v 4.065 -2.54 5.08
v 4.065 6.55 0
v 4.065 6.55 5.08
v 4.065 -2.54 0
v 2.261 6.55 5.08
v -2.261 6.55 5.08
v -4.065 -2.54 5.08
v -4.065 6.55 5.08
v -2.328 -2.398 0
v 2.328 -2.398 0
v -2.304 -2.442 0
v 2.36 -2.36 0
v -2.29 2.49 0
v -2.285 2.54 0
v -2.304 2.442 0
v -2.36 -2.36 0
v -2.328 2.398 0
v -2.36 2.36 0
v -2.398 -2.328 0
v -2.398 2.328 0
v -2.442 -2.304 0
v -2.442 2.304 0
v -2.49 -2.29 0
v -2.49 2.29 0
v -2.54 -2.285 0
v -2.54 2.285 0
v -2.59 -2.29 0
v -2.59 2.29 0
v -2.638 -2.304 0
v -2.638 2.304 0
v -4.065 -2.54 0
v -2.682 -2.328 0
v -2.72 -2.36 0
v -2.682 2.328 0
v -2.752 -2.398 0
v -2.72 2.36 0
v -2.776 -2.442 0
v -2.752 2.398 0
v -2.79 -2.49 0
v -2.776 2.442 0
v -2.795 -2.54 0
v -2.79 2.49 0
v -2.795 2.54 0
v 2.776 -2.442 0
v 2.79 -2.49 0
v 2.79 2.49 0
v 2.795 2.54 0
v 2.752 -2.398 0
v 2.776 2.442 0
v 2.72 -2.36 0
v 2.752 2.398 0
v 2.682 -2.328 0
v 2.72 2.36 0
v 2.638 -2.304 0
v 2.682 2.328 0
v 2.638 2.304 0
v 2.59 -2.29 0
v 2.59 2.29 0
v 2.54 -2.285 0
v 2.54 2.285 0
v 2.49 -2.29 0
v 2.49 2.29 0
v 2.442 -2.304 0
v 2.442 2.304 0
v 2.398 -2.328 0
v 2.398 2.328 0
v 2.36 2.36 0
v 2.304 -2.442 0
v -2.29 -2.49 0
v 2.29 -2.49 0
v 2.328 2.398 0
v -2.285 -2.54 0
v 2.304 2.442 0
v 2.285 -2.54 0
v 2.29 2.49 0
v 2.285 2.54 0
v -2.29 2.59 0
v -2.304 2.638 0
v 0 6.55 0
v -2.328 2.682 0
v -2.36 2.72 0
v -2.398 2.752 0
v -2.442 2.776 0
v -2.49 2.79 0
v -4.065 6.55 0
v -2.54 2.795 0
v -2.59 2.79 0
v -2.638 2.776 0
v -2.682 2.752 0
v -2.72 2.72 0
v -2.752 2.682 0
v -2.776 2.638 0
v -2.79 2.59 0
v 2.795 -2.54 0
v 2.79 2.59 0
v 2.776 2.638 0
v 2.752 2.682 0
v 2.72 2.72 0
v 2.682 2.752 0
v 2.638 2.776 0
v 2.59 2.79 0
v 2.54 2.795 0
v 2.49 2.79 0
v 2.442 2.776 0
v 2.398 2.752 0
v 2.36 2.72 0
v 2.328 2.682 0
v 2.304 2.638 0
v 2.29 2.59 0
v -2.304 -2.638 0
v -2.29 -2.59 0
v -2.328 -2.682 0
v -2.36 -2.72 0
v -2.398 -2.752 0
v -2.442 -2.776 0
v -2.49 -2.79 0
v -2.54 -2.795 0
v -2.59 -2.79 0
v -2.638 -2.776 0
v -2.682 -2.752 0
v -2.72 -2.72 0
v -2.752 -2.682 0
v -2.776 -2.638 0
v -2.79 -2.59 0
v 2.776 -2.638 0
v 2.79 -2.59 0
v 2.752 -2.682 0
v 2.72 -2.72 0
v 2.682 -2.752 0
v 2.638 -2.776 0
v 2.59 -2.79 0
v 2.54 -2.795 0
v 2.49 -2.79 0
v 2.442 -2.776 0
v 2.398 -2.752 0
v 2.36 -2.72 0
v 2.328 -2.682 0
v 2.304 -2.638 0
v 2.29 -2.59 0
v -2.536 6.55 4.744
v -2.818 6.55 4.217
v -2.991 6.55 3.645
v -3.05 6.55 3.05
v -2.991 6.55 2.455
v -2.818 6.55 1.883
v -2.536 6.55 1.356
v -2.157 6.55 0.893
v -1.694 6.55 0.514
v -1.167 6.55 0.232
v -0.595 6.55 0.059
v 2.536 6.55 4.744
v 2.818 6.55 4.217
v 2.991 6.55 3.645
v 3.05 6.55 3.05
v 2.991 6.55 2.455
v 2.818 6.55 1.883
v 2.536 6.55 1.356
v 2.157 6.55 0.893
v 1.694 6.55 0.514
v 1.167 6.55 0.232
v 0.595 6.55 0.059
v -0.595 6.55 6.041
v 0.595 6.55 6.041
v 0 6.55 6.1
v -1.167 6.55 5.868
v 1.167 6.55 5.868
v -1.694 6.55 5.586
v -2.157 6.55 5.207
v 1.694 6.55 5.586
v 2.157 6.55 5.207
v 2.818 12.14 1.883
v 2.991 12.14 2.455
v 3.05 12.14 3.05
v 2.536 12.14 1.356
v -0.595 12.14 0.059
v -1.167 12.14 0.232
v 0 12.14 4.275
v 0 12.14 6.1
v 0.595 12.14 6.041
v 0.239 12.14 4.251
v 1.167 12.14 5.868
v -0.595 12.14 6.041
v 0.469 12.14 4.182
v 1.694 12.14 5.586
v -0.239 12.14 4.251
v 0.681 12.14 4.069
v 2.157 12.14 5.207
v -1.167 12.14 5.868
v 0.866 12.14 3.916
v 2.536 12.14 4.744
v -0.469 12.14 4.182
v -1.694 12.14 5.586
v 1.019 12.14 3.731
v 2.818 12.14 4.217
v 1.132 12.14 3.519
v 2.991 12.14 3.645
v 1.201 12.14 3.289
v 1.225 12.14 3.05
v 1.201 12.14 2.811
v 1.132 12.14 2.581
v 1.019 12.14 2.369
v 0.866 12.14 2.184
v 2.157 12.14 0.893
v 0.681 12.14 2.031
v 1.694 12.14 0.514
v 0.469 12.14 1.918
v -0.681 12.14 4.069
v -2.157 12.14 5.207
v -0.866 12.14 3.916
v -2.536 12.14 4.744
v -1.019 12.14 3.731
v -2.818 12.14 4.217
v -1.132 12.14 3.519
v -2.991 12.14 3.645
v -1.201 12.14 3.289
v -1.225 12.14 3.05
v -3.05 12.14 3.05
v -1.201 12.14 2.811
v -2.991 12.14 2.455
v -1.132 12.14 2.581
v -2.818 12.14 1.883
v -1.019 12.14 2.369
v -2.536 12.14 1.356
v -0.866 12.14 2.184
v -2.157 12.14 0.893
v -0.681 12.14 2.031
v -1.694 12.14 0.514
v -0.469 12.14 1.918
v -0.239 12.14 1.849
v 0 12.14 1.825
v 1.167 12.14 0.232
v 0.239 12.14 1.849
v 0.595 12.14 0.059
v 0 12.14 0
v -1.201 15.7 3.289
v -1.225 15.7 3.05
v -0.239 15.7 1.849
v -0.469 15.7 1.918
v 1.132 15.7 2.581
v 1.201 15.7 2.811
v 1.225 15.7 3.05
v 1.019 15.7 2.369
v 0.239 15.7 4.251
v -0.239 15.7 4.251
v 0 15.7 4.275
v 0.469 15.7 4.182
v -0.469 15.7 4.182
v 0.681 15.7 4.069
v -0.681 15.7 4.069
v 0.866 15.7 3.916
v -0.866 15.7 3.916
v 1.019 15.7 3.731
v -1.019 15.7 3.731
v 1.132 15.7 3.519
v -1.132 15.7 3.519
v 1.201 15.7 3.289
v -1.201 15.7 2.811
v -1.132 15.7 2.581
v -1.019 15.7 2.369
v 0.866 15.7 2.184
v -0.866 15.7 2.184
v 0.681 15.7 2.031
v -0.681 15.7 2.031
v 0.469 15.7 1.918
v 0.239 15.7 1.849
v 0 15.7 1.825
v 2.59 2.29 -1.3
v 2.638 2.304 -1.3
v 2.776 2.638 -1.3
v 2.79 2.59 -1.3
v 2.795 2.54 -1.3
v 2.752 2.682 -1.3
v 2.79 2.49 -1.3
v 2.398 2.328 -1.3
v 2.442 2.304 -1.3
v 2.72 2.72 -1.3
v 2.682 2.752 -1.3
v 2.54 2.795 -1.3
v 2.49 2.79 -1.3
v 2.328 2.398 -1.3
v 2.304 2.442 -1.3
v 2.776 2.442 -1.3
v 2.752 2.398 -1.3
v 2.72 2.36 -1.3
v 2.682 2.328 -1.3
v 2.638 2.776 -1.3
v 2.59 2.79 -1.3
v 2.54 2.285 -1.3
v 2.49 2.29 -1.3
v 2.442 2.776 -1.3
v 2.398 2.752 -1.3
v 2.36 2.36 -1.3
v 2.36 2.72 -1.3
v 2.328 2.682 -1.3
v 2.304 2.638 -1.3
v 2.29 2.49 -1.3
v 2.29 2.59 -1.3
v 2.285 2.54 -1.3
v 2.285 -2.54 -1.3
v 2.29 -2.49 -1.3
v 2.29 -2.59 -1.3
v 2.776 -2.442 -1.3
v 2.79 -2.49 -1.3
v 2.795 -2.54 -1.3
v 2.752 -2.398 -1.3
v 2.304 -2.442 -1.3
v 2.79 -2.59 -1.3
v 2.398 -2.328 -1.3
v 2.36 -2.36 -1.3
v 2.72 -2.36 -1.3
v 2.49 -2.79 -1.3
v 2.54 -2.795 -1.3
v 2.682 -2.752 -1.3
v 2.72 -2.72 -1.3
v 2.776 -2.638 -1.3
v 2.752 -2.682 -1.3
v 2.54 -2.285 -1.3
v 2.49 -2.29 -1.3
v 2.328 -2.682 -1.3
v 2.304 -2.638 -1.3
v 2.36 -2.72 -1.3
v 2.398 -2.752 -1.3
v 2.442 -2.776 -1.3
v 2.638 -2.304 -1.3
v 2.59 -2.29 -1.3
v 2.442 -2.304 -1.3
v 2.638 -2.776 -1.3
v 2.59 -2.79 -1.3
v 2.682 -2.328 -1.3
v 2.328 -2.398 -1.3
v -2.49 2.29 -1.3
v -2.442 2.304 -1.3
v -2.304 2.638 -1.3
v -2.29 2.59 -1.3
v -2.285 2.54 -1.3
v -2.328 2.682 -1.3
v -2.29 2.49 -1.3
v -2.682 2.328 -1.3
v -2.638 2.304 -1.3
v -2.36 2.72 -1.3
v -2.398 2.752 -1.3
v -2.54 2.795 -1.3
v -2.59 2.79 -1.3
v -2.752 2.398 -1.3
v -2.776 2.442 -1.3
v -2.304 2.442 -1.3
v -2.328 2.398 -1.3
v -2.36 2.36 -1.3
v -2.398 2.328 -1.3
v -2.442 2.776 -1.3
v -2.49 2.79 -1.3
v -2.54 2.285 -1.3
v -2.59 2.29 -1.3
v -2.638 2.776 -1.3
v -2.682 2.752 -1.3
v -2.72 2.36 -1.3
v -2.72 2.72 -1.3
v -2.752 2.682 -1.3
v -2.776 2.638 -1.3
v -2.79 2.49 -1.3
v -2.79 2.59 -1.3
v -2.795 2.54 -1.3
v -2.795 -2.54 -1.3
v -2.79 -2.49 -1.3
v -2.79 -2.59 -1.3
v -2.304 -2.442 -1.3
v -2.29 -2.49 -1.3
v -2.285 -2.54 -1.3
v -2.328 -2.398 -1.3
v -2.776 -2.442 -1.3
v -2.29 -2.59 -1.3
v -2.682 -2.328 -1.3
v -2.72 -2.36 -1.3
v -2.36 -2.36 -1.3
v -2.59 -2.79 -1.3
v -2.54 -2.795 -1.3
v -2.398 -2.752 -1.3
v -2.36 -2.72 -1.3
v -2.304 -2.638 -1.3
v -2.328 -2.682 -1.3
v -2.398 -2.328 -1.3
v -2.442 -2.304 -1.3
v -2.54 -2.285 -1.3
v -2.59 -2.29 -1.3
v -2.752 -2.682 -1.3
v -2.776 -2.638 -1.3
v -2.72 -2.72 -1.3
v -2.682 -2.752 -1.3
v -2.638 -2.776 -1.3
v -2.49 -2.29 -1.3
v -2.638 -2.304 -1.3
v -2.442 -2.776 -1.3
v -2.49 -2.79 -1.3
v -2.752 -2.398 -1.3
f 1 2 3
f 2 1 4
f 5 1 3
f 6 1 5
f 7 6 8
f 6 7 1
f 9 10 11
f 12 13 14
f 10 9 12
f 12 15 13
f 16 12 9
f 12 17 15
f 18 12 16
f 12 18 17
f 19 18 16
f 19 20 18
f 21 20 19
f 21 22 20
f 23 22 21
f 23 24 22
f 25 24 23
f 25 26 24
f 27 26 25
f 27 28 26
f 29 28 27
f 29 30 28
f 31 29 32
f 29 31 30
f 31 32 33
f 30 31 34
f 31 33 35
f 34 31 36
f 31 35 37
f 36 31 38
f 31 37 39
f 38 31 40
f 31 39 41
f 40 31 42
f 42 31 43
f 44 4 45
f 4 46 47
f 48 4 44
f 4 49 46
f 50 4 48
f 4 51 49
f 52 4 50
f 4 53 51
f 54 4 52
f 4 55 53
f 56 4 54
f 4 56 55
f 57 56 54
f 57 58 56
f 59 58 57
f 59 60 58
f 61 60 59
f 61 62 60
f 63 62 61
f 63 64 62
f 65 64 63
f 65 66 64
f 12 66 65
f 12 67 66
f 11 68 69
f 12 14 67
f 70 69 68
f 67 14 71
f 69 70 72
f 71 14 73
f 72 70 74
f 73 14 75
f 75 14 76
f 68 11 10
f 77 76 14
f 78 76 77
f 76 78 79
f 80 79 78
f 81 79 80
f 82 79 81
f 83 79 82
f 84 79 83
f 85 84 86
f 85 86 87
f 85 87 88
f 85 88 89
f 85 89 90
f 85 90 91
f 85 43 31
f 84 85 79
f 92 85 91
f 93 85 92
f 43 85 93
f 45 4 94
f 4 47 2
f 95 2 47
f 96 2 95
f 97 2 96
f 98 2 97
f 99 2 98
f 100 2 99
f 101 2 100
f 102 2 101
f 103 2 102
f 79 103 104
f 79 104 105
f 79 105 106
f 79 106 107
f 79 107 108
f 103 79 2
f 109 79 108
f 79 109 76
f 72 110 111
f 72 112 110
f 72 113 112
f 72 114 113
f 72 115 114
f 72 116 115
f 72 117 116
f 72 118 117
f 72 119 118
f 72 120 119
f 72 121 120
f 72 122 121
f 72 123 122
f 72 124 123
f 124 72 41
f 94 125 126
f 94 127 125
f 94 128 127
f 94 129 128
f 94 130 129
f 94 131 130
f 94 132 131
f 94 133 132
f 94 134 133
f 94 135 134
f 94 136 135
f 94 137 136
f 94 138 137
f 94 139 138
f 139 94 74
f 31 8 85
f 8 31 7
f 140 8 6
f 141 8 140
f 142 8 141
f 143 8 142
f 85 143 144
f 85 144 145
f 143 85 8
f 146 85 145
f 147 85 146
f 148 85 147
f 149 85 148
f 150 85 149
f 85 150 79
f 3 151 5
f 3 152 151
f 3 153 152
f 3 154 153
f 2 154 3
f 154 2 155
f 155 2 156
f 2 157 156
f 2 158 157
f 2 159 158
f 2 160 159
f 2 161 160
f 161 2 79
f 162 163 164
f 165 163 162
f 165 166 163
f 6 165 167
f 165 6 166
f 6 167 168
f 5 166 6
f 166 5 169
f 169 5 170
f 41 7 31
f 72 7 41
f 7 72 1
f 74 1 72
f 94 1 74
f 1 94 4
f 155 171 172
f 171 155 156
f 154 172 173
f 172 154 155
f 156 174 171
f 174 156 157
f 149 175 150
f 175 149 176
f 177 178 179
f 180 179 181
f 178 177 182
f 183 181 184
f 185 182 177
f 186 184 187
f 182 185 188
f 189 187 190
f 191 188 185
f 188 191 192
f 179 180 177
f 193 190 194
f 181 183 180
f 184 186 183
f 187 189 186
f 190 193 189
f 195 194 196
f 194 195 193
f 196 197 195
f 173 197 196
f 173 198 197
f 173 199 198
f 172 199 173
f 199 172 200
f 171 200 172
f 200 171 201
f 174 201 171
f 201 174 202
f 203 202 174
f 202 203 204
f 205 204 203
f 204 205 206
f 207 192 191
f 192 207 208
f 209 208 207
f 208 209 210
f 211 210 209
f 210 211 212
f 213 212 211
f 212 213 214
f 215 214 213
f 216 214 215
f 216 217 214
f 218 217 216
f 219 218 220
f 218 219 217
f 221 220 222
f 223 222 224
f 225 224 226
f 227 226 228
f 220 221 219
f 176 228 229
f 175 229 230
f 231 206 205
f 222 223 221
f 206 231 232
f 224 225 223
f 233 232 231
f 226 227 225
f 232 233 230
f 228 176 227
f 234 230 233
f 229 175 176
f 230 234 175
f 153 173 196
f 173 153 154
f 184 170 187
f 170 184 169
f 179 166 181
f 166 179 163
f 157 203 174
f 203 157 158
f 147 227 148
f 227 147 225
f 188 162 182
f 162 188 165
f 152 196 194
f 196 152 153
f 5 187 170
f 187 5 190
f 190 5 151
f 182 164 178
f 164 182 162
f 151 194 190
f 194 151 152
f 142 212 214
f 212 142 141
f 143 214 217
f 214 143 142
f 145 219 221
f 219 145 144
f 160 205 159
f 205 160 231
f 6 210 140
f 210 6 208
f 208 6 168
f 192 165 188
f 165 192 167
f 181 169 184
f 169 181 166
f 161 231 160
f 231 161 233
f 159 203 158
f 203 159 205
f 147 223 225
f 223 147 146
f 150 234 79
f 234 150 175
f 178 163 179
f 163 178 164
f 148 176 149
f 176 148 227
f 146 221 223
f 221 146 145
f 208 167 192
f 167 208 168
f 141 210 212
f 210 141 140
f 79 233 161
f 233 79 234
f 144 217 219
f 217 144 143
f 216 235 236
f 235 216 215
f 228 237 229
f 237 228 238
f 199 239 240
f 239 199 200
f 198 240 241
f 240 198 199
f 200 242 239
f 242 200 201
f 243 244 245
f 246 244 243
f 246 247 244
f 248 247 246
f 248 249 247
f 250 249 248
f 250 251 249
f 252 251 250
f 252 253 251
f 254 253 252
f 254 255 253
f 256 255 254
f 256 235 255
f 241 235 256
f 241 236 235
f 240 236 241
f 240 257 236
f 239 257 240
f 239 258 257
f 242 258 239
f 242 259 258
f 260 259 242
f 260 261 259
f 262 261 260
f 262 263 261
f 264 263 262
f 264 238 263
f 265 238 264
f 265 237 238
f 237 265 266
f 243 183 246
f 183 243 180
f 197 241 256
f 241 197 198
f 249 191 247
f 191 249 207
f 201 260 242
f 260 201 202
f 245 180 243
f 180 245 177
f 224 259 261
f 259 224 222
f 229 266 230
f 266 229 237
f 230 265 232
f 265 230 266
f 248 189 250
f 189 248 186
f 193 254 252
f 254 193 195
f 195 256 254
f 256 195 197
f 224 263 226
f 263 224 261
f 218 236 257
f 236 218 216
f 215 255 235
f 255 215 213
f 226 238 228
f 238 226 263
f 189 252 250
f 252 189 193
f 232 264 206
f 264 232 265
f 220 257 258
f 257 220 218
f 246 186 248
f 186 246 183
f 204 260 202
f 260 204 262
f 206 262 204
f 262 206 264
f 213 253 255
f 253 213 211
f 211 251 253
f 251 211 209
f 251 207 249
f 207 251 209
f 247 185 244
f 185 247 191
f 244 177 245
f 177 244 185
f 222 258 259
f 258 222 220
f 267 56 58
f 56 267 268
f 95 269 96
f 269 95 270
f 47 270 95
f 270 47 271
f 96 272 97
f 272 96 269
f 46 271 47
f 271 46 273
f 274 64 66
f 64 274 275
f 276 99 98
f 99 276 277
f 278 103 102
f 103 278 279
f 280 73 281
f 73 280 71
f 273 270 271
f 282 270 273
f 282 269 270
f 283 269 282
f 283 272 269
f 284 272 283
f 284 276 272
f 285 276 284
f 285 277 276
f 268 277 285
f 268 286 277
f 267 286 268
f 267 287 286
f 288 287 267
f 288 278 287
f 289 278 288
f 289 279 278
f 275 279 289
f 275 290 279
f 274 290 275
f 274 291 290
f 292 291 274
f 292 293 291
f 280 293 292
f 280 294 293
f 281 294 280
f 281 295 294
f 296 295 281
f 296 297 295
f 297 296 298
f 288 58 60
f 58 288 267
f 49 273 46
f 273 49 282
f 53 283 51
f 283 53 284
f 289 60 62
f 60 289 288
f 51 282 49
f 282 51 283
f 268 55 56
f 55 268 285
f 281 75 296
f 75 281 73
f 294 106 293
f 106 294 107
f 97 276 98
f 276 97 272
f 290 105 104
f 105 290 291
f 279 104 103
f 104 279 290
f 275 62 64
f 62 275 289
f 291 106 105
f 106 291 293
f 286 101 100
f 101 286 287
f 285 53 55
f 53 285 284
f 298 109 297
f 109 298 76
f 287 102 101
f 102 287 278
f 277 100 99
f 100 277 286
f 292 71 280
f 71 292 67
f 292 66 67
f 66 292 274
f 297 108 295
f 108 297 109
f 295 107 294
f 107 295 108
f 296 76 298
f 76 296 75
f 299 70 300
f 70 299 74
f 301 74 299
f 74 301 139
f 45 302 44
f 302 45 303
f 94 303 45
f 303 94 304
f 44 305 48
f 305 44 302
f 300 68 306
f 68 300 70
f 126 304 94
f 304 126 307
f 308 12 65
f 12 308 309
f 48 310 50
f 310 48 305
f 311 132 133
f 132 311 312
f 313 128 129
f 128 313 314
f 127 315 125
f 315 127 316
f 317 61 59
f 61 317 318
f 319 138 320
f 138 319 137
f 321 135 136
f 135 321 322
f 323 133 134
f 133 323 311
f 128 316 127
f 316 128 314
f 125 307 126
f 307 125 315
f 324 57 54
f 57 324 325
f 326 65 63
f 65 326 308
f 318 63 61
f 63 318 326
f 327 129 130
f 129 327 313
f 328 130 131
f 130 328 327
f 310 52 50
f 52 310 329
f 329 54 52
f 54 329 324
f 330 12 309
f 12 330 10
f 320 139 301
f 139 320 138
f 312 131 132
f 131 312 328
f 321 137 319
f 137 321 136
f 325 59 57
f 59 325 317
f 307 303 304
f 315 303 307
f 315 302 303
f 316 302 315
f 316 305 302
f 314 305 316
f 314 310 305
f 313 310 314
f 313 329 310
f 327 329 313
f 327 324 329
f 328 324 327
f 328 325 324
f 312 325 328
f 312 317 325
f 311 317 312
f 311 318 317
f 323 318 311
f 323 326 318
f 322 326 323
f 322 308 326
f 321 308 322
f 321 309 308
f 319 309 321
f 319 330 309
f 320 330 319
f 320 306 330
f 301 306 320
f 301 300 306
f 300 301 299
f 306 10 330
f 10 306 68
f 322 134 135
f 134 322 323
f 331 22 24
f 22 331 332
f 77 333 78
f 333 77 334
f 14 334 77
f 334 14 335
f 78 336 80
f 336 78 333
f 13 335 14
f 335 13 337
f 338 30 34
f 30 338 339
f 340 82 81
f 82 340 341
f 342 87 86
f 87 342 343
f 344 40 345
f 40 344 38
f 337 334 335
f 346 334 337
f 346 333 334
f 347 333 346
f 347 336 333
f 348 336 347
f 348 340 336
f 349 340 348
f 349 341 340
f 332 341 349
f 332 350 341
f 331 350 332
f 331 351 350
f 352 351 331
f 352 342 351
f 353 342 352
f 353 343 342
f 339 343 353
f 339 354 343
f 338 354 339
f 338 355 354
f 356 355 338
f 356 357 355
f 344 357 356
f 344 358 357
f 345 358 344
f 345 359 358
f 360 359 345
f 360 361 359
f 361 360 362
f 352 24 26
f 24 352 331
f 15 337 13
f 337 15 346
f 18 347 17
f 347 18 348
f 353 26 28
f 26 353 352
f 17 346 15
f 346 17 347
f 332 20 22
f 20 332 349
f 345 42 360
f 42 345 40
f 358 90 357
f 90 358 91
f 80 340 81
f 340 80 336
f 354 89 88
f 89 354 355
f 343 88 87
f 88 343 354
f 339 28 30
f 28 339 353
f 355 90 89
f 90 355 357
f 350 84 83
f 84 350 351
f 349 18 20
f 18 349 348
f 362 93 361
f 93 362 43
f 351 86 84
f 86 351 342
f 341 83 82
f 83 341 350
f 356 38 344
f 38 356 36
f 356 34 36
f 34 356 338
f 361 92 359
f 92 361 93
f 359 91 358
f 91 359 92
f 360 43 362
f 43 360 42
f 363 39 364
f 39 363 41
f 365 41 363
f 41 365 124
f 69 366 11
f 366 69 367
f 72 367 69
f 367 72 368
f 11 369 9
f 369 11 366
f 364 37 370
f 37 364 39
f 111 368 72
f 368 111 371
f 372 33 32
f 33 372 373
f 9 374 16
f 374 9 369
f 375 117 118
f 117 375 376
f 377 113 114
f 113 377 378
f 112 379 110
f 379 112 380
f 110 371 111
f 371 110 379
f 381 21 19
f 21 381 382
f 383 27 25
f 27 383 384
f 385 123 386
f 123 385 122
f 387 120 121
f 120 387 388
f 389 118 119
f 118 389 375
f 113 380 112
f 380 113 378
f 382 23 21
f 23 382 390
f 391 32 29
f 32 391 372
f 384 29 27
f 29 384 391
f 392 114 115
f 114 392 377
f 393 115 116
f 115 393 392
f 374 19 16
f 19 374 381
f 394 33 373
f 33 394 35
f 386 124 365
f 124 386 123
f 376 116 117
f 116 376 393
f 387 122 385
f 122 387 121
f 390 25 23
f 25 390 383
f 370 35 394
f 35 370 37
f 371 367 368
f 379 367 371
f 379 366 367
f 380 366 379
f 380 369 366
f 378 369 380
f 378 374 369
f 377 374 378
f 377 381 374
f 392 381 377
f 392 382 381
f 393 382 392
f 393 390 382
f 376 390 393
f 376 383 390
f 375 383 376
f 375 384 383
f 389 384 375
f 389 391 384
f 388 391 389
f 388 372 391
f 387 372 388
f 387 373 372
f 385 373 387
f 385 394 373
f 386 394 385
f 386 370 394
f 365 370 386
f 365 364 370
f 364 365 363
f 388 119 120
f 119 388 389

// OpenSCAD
//
// E-switch 800SP9B6M6RE
//
$fn = 32;

box_x = 8.13;
box_y = 9.09;
box_z = 5.08;

pin_len = 1.3;
pin_dia = 0.51;

module pin_at(x,y) {
     translate( [x, y, -pin_len])
	  cylinder( d=pin_dia, h=pin_len);
}

module switch() {

translate( [-box_x/2, -2.54, 0])
cube( [box_x, box_y, box_z]);

translate( [0, box_y-2.54, 6.1/2] )
  rotate( [-90, 0, 0])
  cylinder( h=5.59, d=6.1);

translate( [0, box_y-2.54+5.59, 6.1/2] )
  rotate( [-90, 0, 0])
  cylinder( h=3.56, d=2.45);

pin_at(2.54,2.54);
pin_at(2.54,-2.54);
pin_at(-2.54,2.54);
pin_at(-2.54,-2.54);

}

switch();
